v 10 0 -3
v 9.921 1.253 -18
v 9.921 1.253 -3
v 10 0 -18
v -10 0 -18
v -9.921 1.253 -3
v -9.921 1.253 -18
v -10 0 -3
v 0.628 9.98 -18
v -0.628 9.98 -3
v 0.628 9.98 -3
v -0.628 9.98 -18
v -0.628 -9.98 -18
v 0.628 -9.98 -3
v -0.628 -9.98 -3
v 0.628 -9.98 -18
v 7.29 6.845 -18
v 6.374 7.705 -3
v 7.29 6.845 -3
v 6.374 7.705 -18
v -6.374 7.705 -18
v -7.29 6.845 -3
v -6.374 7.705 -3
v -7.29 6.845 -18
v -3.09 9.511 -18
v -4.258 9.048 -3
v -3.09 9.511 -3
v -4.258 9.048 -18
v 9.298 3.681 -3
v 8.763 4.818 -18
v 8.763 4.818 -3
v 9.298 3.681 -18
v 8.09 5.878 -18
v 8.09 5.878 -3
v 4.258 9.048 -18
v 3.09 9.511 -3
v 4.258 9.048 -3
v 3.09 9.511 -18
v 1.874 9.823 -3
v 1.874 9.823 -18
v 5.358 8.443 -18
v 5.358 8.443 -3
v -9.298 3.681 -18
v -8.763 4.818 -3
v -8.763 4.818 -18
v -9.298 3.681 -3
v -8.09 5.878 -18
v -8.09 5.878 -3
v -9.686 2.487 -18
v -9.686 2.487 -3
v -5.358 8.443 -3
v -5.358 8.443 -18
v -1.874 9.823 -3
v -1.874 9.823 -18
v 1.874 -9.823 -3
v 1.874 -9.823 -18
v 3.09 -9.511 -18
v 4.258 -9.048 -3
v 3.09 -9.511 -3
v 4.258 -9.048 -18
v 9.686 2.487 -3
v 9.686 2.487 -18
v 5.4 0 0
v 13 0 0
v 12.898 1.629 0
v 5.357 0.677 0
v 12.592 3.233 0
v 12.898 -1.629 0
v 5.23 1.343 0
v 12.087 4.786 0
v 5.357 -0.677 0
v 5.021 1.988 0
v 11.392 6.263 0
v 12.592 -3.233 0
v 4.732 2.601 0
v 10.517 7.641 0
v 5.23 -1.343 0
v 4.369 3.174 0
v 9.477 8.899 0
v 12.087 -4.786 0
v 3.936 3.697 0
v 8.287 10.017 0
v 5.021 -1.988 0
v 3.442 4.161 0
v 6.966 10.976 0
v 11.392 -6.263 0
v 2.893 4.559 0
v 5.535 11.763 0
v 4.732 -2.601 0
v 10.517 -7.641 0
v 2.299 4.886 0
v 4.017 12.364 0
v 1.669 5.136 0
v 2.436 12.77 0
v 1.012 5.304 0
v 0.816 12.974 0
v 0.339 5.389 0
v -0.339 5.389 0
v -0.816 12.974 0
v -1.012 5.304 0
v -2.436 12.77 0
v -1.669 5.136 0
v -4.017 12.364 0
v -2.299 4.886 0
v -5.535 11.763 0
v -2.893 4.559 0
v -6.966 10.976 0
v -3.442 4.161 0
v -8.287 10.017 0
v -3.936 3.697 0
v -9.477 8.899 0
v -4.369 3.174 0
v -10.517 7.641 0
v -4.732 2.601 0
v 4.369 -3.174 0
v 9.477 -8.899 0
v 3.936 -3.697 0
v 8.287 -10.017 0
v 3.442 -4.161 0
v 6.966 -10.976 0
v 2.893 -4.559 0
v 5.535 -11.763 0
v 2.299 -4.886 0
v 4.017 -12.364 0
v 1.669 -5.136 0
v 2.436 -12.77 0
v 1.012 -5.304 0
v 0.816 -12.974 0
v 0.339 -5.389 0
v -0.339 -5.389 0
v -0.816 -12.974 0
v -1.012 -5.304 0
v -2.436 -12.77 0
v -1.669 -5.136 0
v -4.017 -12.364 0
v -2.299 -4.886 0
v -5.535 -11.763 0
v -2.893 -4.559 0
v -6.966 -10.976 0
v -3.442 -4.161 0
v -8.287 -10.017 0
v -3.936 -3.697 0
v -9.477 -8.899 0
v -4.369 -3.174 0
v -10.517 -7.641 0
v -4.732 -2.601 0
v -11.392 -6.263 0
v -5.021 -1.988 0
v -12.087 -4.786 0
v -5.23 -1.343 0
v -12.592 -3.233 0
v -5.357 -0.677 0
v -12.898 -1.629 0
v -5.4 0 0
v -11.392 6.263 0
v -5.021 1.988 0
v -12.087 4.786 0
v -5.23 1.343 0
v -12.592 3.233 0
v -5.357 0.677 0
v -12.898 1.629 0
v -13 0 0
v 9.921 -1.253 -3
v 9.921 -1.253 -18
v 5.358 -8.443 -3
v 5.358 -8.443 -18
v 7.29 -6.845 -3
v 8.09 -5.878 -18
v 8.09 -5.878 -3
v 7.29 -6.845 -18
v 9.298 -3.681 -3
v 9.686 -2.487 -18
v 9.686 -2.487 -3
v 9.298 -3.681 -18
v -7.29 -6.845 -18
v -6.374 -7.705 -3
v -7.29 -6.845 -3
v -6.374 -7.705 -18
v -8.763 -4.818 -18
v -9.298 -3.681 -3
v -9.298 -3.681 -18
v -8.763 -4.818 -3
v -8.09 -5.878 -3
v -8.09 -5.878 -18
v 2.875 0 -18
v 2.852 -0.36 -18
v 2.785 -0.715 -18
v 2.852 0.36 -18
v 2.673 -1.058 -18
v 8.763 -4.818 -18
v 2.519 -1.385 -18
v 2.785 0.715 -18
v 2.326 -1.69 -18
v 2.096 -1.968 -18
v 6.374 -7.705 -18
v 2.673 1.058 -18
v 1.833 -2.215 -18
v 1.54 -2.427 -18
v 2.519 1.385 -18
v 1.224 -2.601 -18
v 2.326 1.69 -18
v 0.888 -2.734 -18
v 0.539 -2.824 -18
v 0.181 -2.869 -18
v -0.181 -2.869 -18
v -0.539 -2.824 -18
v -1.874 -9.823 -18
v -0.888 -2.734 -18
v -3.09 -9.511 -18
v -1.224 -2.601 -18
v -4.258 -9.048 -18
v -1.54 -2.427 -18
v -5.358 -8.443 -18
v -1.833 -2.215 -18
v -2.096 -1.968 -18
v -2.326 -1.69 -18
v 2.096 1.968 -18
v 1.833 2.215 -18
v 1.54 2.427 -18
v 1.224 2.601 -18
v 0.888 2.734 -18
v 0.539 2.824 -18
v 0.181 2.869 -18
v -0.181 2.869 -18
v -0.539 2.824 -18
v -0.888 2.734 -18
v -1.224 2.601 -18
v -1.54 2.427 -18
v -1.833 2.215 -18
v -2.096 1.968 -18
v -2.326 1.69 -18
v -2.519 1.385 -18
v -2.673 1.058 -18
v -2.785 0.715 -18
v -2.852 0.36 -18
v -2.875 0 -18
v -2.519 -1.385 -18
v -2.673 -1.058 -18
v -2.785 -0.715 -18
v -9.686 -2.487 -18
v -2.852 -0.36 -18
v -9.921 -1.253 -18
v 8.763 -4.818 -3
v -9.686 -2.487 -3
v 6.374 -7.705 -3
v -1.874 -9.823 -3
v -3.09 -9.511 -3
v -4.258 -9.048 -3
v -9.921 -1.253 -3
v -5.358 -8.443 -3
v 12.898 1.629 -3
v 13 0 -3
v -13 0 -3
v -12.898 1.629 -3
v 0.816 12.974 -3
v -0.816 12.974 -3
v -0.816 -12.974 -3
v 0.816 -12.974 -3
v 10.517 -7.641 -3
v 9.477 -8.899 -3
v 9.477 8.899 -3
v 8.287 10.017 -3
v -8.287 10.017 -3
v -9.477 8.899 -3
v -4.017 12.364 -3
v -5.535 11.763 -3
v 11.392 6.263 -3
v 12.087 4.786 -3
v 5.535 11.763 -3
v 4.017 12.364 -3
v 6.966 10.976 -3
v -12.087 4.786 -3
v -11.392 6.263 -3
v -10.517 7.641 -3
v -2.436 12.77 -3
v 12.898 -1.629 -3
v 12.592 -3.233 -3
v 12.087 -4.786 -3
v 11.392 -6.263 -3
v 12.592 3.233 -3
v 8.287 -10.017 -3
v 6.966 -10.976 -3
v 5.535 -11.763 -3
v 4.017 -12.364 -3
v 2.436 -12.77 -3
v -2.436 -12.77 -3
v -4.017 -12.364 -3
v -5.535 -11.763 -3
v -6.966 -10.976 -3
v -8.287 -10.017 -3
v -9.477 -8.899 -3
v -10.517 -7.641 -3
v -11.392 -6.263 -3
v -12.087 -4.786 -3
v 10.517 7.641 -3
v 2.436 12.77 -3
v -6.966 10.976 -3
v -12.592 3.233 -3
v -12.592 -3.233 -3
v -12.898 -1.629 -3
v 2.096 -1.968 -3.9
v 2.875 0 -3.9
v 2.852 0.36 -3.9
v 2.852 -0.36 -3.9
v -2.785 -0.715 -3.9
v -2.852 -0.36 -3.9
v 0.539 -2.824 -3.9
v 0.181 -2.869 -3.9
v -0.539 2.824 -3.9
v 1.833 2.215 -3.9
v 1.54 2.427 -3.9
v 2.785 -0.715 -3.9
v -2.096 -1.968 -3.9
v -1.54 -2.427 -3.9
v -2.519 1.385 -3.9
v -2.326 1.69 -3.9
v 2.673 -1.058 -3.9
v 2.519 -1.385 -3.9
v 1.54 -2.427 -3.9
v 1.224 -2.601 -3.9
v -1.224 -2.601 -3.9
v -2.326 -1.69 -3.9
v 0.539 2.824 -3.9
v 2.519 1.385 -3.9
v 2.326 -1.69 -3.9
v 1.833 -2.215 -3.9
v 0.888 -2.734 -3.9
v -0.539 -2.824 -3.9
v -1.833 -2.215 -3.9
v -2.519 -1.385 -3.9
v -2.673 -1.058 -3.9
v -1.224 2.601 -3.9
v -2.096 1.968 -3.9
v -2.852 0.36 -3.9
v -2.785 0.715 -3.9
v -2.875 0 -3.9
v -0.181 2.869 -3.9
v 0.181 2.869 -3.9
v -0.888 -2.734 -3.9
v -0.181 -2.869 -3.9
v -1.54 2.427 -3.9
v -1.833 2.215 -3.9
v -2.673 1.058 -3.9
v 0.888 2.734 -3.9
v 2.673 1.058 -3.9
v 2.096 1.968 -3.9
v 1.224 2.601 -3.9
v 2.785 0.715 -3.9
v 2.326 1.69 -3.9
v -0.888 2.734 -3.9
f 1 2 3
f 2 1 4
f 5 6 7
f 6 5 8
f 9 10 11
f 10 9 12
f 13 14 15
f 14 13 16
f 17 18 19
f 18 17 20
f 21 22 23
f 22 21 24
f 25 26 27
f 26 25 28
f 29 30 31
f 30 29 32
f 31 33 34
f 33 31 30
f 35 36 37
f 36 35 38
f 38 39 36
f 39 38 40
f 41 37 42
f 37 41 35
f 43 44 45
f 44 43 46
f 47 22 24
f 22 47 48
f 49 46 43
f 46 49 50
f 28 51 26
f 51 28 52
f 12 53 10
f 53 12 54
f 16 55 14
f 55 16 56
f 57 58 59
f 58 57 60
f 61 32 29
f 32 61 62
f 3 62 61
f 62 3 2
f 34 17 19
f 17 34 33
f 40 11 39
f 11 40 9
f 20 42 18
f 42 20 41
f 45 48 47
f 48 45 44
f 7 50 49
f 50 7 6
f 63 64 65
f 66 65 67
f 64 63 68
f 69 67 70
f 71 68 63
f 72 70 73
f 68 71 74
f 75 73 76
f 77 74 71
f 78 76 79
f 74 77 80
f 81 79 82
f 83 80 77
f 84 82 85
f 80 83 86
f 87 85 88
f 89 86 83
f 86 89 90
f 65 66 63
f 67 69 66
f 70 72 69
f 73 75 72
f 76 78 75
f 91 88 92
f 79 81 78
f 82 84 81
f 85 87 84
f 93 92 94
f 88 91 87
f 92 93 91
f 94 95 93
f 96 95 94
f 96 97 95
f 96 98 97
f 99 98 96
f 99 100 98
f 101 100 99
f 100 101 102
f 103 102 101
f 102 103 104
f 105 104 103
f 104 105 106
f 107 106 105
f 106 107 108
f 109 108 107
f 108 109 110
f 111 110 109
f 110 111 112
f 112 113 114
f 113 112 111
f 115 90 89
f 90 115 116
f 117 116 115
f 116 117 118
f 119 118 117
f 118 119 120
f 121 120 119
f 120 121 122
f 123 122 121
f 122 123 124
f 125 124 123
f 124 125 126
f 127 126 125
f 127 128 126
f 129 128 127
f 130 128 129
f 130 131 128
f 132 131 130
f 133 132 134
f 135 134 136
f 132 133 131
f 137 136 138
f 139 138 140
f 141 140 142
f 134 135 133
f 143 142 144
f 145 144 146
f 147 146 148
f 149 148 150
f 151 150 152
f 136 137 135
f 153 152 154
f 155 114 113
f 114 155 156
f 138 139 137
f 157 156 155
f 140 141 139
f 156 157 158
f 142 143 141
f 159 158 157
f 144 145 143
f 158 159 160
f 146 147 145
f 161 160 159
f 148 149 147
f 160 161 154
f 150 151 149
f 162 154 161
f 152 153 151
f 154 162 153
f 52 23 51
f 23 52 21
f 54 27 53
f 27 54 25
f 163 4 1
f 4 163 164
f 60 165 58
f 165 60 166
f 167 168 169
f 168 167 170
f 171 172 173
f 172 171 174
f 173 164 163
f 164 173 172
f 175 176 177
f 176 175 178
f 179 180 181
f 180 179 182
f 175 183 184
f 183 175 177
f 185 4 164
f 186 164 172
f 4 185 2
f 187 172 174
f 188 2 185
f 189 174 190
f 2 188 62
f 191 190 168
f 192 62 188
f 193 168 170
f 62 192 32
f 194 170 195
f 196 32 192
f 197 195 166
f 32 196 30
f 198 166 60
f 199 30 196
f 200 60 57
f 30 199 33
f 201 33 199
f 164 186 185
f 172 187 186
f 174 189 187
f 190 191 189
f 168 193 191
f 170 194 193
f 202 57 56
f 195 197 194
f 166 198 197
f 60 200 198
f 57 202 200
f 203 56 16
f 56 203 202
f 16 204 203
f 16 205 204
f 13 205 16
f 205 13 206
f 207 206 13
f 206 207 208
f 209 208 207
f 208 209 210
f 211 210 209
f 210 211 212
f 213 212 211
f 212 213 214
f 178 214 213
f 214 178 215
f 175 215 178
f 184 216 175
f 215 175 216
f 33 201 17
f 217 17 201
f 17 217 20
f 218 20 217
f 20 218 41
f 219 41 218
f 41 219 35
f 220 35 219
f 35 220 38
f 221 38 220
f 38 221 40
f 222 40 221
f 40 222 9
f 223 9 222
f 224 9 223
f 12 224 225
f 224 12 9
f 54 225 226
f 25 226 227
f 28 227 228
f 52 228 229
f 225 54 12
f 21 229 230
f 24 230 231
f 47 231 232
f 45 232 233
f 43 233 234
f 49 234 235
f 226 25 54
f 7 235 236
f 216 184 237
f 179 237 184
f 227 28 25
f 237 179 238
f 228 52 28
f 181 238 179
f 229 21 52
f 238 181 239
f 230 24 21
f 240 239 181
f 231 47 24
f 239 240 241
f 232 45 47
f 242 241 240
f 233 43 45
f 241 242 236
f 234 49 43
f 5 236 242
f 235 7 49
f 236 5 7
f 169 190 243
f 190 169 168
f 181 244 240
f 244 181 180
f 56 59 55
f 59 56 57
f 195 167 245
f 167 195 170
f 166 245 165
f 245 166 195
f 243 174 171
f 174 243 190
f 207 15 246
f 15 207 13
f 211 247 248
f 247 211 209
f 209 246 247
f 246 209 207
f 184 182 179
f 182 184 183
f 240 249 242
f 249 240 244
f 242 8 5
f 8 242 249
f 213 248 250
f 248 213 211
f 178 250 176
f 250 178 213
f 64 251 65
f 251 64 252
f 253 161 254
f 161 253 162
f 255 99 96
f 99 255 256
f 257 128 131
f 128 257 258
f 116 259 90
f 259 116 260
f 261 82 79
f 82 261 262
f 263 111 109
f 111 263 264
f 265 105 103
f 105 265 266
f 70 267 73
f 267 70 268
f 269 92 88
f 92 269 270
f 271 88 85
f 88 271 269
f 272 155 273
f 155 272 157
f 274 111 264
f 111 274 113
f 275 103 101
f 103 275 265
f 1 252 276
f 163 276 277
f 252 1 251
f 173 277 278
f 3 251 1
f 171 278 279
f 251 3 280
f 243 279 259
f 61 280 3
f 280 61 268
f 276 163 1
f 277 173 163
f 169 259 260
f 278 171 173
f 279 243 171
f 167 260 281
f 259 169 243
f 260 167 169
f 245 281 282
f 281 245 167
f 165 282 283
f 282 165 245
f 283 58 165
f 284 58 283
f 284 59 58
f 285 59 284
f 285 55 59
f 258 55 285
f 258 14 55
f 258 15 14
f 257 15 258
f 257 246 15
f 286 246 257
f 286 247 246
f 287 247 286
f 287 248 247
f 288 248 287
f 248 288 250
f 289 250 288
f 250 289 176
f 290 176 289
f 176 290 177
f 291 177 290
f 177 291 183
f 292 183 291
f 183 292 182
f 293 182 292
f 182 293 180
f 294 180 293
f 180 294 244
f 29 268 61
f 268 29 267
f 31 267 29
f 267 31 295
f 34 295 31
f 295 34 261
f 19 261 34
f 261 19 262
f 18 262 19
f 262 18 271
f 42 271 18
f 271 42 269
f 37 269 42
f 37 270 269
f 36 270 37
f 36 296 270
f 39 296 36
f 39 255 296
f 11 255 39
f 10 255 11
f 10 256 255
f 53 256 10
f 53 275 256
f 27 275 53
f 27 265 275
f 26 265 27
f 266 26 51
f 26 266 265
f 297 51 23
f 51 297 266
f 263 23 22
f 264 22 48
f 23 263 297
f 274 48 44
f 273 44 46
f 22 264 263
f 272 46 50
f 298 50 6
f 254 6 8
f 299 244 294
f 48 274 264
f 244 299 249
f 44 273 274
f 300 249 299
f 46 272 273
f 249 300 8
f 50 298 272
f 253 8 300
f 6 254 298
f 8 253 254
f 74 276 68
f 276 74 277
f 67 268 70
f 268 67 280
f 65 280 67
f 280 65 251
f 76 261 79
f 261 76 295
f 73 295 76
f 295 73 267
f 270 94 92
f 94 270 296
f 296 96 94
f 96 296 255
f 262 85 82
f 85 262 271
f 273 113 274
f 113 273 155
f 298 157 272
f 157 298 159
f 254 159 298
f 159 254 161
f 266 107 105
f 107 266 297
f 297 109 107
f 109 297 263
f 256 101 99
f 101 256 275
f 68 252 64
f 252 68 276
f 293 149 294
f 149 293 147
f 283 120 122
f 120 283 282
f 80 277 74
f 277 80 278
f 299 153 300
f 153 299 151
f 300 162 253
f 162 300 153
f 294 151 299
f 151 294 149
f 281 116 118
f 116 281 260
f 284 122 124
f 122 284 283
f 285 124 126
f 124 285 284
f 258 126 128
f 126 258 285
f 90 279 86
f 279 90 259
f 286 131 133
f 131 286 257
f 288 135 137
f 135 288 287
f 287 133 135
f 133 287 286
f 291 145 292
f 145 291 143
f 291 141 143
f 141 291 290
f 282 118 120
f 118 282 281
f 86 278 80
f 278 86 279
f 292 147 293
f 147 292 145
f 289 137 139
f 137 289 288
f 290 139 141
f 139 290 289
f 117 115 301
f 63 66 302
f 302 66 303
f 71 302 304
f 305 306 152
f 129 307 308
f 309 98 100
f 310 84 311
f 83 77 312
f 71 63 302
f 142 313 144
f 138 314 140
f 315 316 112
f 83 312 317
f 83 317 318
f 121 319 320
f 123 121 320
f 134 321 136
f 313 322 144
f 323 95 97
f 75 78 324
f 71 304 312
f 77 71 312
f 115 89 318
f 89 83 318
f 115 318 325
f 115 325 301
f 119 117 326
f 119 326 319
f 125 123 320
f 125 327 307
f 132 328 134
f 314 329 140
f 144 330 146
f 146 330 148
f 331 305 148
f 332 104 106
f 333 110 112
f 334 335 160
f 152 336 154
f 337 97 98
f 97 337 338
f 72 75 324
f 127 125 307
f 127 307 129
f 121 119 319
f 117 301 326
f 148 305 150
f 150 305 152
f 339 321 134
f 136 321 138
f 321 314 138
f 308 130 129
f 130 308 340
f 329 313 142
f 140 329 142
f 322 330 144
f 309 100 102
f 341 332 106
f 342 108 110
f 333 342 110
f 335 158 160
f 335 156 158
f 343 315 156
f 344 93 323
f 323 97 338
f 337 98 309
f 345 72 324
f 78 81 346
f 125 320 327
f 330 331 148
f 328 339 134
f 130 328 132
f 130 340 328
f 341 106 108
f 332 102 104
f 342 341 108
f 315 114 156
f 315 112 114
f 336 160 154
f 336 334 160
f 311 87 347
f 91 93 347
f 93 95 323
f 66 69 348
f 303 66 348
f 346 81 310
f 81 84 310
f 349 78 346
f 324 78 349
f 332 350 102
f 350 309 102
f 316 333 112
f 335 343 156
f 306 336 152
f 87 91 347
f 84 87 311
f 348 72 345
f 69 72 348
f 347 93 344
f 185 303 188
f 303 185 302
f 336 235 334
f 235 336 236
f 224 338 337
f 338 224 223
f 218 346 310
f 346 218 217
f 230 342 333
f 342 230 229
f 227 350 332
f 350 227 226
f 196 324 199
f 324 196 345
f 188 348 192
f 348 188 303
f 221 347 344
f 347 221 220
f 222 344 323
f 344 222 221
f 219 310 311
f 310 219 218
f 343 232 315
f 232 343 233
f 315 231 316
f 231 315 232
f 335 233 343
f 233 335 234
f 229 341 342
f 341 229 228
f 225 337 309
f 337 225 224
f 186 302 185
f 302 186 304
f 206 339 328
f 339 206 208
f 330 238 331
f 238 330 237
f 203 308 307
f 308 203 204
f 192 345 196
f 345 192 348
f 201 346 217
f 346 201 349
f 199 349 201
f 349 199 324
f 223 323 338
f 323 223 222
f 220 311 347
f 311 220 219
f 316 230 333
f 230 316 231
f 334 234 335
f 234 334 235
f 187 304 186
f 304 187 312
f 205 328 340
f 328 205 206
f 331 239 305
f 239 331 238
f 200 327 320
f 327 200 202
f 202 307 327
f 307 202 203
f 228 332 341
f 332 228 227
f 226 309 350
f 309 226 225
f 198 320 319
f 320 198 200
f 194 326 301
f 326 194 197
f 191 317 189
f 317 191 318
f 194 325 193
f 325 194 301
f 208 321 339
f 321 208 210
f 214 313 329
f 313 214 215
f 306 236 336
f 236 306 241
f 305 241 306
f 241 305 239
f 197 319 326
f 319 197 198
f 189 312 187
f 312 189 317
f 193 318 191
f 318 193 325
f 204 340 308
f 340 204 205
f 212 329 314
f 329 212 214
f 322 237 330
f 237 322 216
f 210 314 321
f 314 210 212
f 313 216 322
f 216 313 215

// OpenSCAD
$fn = 50;


difference() {
	union() {
		translate(v = [0, 0, -18.0000000000]) {
			cylinder(h = 18, r = 10.0000000000);
		}
		translate(v = [0, 0, -3.0000000000]) {
			cylinder(h = 3, r = 13.0000000000);
		}
	}
	union() {
		translate(v = [0, 0, 0]) {
			rotate(a = [0, 0, 0]) {
				difference() {
					union() {
						#translate(v = [0, 0, -18.0000000000]) {
							cylinder(h = 18, r = 2.6000000000);
						}
						#translate(v = [0, 0, -3.9000000000]) {
							cylinder(h = 3.9000000000, r = 10.0000000000, r1 = 2.8750000000, r2 = 5.4000000000);
						}
						#translate(v = [0, 0, -18.0000000000]) {
							cylinder(h = 18, r = 2.8750000000);
						}
						#translate(v = [0, 0, -18.0000000000]) {
							cylinder(h = 18, r = 2.6000000000);
						}
					}
					union();
				}
			}
		}
	}
}
